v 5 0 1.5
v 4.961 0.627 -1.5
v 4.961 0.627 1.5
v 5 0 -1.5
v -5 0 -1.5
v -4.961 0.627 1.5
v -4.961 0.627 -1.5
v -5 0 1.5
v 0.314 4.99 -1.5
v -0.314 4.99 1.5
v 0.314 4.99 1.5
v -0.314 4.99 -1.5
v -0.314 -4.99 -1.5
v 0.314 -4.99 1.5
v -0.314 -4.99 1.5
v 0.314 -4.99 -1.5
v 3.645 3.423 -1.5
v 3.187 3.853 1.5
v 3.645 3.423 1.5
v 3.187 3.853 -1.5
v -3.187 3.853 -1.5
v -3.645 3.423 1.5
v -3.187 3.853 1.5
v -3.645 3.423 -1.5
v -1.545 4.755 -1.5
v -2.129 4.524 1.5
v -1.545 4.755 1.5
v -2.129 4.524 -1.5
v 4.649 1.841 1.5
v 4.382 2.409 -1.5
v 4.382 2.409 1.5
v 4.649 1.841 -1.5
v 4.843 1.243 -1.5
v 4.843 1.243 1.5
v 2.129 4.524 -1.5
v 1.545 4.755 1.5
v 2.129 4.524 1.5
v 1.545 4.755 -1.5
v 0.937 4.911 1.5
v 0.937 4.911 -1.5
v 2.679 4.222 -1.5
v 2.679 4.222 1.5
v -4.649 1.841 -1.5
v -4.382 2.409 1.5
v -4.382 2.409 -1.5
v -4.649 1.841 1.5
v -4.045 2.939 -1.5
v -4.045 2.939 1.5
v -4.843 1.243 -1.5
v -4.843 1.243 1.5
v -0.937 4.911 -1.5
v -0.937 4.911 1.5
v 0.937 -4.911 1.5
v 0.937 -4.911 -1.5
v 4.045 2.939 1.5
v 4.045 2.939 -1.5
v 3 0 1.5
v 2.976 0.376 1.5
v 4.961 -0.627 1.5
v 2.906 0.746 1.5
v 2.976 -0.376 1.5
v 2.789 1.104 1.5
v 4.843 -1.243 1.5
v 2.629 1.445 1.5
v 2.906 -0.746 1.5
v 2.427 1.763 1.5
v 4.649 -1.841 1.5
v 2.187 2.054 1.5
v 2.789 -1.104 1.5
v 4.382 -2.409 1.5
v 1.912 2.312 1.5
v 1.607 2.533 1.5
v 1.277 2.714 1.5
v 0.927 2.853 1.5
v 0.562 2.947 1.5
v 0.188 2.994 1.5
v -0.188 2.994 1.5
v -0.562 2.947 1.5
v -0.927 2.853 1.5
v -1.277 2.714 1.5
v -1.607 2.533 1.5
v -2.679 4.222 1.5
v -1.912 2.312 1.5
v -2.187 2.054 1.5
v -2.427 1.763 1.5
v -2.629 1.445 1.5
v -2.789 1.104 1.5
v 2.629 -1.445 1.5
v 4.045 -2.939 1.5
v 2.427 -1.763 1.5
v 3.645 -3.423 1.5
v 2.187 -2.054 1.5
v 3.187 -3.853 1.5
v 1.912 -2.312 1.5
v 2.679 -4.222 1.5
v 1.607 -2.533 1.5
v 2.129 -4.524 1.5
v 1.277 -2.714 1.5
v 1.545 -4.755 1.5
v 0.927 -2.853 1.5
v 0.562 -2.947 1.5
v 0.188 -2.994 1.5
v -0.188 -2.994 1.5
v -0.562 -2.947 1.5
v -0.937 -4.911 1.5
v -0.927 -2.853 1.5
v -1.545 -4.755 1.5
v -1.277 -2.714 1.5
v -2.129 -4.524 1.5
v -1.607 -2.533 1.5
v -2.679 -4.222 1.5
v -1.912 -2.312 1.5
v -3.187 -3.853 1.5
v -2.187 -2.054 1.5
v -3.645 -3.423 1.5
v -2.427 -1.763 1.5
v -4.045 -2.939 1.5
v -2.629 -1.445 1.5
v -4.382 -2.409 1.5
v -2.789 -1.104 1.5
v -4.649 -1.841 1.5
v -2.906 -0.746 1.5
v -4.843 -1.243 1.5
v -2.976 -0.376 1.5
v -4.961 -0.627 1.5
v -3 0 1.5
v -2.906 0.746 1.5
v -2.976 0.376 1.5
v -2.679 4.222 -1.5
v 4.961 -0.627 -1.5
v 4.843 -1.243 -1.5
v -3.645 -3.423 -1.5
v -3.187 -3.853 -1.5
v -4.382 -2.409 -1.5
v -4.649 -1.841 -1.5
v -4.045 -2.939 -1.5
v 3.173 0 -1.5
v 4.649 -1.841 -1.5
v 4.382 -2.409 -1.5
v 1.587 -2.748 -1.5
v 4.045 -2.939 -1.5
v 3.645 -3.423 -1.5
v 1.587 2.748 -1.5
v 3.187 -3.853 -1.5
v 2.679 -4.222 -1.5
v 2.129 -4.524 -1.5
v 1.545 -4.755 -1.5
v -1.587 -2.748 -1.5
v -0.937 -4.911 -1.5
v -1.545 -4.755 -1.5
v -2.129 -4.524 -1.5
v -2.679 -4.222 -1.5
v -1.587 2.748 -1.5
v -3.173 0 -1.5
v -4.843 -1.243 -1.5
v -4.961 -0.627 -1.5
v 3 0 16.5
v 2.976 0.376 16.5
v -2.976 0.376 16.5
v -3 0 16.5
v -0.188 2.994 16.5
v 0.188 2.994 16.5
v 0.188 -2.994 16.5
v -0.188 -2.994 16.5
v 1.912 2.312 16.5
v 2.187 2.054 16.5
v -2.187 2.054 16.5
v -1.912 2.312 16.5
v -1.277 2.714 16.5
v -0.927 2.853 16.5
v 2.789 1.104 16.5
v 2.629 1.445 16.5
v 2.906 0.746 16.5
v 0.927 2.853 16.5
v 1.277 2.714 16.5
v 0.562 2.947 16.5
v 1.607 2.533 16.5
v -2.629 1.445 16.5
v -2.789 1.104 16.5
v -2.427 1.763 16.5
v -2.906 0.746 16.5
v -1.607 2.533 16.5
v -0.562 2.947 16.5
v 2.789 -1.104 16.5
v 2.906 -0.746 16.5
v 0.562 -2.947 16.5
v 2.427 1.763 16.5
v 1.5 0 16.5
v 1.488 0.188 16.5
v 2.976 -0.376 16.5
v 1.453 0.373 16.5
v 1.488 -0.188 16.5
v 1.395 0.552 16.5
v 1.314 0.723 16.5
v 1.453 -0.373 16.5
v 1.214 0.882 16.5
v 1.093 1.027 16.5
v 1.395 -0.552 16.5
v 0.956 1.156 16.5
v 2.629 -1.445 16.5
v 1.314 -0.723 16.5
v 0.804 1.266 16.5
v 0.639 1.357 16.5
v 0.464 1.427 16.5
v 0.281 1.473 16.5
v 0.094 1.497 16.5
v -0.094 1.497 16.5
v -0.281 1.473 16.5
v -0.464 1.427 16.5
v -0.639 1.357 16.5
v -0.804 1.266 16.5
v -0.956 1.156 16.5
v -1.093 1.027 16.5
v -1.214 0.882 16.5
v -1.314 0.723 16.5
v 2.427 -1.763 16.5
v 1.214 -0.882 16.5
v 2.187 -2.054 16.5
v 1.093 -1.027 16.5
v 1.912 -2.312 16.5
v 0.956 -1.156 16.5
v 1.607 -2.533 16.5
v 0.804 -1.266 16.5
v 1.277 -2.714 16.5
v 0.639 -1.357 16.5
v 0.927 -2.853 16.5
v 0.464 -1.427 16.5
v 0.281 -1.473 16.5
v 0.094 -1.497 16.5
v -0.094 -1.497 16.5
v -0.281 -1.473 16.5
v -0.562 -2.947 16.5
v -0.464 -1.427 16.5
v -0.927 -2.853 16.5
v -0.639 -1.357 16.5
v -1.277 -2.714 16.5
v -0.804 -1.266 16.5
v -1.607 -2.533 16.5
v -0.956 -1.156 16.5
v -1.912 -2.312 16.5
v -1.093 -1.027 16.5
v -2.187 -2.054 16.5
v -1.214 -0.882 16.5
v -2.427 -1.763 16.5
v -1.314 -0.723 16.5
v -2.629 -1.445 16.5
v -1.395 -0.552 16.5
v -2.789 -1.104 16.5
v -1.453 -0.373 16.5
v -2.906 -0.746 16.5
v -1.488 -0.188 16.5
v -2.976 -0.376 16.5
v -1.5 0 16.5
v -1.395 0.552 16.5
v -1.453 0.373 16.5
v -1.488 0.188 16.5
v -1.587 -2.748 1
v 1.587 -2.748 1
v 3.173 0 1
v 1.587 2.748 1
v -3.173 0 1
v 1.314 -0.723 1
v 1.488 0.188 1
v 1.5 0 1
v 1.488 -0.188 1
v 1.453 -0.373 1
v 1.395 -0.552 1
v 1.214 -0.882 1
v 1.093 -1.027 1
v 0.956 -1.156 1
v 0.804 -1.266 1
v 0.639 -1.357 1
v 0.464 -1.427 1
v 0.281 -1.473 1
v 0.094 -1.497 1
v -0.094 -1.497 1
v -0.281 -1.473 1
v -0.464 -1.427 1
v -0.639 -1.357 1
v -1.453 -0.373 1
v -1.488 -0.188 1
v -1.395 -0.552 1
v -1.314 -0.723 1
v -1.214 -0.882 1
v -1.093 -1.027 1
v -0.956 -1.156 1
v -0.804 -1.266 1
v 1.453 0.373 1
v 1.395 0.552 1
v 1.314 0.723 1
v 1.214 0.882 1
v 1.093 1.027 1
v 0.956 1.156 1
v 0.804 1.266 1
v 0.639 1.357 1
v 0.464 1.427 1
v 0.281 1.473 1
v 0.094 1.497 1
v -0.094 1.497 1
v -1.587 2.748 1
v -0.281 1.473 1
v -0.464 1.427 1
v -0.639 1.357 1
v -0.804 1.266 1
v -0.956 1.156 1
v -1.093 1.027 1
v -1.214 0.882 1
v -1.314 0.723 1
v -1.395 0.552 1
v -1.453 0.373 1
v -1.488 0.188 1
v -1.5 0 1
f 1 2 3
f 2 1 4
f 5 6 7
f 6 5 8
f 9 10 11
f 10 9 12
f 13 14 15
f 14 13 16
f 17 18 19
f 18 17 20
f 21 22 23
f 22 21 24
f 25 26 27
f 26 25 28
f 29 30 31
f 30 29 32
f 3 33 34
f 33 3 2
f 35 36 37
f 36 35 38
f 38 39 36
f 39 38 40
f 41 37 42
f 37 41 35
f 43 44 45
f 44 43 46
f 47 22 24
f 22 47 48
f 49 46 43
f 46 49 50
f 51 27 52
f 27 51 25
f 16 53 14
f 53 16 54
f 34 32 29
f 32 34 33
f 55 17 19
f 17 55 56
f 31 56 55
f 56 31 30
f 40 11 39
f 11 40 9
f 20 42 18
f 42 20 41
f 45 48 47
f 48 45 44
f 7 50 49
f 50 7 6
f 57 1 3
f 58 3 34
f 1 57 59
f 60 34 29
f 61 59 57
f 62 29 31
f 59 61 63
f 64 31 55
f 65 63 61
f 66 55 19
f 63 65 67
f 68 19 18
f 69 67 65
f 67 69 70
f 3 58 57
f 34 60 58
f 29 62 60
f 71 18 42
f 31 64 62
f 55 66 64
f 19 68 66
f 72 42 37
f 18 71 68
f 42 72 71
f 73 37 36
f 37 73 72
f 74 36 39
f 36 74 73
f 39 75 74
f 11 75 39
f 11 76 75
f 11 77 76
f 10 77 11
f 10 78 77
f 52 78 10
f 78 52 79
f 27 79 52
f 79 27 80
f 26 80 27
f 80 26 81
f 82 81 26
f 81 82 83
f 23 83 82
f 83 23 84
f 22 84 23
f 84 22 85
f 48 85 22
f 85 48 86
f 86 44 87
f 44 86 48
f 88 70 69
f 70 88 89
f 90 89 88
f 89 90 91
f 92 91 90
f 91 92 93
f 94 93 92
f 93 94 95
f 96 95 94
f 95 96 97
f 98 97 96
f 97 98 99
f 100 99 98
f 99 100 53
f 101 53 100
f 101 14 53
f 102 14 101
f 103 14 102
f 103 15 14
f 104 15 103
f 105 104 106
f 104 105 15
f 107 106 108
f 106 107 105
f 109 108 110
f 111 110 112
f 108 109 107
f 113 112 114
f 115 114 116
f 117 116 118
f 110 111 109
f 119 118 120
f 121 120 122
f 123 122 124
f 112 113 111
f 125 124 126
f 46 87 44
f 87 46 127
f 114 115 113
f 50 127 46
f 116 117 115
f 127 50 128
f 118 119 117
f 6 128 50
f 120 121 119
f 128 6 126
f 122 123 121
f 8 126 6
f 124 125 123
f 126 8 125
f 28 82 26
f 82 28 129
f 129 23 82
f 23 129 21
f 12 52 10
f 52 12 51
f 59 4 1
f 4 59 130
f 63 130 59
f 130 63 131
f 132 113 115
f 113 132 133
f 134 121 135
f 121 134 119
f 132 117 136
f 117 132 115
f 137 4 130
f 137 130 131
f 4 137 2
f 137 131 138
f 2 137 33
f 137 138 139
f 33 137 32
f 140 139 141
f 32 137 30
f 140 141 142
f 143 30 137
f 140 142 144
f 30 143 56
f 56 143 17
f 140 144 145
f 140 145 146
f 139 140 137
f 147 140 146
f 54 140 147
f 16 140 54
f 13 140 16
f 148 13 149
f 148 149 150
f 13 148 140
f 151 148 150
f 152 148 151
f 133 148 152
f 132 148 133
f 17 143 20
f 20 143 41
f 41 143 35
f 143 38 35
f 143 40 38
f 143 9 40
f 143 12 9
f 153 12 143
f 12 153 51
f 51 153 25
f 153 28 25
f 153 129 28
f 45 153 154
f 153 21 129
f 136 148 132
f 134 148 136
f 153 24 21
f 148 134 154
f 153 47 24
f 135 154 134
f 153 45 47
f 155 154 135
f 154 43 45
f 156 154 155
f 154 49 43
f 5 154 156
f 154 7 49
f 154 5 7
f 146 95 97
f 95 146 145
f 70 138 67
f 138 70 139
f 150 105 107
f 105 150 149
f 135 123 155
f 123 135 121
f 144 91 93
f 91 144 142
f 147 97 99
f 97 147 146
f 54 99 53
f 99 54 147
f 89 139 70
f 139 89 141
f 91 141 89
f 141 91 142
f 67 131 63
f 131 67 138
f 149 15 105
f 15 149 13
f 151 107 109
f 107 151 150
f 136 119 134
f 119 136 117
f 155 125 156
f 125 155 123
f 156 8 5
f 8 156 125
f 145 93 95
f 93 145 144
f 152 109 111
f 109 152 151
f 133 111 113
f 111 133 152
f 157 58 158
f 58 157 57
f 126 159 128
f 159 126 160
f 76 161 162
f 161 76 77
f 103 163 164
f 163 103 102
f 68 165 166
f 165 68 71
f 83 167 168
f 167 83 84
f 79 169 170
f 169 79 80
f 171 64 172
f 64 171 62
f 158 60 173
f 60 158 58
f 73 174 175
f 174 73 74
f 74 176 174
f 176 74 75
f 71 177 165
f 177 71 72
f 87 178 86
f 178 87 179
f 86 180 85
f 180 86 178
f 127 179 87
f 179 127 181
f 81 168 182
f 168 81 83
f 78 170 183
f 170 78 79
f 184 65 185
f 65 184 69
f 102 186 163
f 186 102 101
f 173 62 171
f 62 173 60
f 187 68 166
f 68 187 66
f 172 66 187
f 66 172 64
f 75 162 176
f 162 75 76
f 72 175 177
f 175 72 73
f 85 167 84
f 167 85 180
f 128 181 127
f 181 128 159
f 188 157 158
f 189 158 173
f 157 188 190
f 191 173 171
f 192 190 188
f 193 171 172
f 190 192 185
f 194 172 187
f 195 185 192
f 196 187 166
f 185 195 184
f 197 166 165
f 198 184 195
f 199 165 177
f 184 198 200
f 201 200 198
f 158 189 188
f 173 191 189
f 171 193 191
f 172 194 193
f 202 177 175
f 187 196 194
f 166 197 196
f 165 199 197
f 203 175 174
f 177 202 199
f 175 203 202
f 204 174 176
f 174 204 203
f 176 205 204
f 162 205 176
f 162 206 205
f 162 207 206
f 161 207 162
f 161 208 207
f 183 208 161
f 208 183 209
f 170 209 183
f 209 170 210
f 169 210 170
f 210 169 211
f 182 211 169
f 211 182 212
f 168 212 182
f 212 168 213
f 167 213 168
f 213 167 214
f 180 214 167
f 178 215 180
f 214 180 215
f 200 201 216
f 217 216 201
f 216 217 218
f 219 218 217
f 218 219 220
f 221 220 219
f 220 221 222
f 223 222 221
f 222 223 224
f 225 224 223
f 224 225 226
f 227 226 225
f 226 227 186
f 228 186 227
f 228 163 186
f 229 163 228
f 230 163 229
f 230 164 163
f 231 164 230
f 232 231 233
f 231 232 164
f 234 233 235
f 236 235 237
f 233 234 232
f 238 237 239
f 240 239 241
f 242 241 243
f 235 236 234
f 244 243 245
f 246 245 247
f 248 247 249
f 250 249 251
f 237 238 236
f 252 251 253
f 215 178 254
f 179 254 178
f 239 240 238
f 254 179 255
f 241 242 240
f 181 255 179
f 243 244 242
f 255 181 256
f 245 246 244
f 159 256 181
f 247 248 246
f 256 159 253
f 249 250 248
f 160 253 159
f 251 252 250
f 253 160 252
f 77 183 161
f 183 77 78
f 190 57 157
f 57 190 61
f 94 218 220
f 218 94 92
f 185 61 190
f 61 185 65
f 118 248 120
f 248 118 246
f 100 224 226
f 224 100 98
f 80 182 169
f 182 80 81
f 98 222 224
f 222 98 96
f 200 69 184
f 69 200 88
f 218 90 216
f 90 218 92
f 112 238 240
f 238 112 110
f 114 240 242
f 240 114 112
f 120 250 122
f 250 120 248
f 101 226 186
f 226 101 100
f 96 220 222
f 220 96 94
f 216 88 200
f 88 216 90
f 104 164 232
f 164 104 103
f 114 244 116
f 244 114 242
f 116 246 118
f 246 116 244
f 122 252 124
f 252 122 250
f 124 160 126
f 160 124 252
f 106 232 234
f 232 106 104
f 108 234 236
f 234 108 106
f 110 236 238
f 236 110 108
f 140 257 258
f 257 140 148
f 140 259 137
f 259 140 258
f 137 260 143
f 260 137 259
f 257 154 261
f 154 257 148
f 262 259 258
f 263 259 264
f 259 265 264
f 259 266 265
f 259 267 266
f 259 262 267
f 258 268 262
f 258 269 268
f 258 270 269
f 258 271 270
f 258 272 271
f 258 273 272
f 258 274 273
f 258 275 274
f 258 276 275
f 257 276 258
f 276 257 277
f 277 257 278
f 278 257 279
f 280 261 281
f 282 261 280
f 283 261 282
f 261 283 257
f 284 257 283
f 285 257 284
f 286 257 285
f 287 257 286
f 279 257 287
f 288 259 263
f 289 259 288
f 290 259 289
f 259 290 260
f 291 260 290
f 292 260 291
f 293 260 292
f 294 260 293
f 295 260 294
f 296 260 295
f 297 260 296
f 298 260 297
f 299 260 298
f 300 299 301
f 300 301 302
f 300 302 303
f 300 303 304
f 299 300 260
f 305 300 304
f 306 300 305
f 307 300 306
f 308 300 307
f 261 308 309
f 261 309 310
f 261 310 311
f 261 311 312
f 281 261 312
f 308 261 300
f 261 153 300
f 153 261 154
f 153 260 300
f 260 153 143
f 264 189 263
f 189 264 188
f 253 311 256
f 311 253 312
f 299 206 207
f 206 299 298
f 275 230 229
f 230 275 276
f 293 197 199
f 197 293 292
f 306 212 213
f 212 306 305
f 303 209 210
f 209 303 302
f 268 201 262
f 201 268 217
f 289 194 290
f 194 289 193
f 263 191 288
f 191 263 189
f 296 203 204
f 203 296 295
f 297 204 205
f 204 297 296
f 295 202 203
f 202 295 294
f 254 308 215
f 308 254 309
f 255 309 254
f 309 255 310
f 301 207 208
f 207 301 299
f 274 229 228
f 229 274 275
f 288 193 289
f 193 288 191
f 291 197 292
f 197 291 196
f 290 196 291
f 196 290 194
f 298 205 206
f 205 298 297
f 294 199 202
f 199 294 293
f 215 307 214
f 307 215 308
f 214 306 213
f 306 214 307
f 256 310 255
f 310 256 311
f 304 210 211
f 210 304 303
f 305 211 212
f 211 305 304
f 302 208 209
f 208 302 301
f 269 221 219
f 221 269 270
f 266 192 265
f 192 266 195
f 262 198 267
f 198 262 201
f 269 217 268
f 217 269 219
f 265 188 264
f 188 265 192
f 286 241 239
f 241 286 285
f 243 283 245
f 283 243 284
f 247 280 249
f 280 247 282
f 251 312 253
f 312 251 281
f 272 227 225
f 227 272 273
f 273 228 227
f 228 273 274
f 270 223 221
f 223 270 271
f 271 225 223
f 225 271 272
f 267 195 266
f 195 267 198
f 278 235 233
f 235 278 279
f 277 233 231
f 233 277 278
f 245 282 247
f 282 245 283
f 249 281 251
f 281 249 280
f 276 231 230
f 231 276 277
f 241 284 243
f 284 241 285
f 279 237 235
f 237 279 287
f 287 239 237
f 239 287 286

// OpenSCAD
$fn = 50;


difference() {
	union() {
		translate(v = [0, 0, -1.5000000000]) {
			cylinder(h = 3, r = 5.0000000000);
		}
		translate(v = [0, 0, -1.5000000000]) {
			cylinder(h = 18, r = 3.0000000000);
		}
	}
	union() {
		translate(v = [0, 0, -1.5000000000]) {
			rotate(a = [0, 0, 0]) {
				difference() {
					union() {
						linear_extrude(height = 2.5000000000) {
							polygon(points = [[3.1735000000, 0.0000000000], [1.5867500000, 2.7483316189], [-1.5867500000, 2.7483316189], [-3.1735000000, 0.0000000000], [-1.5867500000, -2.7483316189], [1.5867500000, -2.7483316189]]);
						}
					}
					union();
				}
			}
		}
		translate(v = [0, 0, -50.0000000000]) {
			cylinder(h = 100, r = 1.5000000000);
		}
	}
}
